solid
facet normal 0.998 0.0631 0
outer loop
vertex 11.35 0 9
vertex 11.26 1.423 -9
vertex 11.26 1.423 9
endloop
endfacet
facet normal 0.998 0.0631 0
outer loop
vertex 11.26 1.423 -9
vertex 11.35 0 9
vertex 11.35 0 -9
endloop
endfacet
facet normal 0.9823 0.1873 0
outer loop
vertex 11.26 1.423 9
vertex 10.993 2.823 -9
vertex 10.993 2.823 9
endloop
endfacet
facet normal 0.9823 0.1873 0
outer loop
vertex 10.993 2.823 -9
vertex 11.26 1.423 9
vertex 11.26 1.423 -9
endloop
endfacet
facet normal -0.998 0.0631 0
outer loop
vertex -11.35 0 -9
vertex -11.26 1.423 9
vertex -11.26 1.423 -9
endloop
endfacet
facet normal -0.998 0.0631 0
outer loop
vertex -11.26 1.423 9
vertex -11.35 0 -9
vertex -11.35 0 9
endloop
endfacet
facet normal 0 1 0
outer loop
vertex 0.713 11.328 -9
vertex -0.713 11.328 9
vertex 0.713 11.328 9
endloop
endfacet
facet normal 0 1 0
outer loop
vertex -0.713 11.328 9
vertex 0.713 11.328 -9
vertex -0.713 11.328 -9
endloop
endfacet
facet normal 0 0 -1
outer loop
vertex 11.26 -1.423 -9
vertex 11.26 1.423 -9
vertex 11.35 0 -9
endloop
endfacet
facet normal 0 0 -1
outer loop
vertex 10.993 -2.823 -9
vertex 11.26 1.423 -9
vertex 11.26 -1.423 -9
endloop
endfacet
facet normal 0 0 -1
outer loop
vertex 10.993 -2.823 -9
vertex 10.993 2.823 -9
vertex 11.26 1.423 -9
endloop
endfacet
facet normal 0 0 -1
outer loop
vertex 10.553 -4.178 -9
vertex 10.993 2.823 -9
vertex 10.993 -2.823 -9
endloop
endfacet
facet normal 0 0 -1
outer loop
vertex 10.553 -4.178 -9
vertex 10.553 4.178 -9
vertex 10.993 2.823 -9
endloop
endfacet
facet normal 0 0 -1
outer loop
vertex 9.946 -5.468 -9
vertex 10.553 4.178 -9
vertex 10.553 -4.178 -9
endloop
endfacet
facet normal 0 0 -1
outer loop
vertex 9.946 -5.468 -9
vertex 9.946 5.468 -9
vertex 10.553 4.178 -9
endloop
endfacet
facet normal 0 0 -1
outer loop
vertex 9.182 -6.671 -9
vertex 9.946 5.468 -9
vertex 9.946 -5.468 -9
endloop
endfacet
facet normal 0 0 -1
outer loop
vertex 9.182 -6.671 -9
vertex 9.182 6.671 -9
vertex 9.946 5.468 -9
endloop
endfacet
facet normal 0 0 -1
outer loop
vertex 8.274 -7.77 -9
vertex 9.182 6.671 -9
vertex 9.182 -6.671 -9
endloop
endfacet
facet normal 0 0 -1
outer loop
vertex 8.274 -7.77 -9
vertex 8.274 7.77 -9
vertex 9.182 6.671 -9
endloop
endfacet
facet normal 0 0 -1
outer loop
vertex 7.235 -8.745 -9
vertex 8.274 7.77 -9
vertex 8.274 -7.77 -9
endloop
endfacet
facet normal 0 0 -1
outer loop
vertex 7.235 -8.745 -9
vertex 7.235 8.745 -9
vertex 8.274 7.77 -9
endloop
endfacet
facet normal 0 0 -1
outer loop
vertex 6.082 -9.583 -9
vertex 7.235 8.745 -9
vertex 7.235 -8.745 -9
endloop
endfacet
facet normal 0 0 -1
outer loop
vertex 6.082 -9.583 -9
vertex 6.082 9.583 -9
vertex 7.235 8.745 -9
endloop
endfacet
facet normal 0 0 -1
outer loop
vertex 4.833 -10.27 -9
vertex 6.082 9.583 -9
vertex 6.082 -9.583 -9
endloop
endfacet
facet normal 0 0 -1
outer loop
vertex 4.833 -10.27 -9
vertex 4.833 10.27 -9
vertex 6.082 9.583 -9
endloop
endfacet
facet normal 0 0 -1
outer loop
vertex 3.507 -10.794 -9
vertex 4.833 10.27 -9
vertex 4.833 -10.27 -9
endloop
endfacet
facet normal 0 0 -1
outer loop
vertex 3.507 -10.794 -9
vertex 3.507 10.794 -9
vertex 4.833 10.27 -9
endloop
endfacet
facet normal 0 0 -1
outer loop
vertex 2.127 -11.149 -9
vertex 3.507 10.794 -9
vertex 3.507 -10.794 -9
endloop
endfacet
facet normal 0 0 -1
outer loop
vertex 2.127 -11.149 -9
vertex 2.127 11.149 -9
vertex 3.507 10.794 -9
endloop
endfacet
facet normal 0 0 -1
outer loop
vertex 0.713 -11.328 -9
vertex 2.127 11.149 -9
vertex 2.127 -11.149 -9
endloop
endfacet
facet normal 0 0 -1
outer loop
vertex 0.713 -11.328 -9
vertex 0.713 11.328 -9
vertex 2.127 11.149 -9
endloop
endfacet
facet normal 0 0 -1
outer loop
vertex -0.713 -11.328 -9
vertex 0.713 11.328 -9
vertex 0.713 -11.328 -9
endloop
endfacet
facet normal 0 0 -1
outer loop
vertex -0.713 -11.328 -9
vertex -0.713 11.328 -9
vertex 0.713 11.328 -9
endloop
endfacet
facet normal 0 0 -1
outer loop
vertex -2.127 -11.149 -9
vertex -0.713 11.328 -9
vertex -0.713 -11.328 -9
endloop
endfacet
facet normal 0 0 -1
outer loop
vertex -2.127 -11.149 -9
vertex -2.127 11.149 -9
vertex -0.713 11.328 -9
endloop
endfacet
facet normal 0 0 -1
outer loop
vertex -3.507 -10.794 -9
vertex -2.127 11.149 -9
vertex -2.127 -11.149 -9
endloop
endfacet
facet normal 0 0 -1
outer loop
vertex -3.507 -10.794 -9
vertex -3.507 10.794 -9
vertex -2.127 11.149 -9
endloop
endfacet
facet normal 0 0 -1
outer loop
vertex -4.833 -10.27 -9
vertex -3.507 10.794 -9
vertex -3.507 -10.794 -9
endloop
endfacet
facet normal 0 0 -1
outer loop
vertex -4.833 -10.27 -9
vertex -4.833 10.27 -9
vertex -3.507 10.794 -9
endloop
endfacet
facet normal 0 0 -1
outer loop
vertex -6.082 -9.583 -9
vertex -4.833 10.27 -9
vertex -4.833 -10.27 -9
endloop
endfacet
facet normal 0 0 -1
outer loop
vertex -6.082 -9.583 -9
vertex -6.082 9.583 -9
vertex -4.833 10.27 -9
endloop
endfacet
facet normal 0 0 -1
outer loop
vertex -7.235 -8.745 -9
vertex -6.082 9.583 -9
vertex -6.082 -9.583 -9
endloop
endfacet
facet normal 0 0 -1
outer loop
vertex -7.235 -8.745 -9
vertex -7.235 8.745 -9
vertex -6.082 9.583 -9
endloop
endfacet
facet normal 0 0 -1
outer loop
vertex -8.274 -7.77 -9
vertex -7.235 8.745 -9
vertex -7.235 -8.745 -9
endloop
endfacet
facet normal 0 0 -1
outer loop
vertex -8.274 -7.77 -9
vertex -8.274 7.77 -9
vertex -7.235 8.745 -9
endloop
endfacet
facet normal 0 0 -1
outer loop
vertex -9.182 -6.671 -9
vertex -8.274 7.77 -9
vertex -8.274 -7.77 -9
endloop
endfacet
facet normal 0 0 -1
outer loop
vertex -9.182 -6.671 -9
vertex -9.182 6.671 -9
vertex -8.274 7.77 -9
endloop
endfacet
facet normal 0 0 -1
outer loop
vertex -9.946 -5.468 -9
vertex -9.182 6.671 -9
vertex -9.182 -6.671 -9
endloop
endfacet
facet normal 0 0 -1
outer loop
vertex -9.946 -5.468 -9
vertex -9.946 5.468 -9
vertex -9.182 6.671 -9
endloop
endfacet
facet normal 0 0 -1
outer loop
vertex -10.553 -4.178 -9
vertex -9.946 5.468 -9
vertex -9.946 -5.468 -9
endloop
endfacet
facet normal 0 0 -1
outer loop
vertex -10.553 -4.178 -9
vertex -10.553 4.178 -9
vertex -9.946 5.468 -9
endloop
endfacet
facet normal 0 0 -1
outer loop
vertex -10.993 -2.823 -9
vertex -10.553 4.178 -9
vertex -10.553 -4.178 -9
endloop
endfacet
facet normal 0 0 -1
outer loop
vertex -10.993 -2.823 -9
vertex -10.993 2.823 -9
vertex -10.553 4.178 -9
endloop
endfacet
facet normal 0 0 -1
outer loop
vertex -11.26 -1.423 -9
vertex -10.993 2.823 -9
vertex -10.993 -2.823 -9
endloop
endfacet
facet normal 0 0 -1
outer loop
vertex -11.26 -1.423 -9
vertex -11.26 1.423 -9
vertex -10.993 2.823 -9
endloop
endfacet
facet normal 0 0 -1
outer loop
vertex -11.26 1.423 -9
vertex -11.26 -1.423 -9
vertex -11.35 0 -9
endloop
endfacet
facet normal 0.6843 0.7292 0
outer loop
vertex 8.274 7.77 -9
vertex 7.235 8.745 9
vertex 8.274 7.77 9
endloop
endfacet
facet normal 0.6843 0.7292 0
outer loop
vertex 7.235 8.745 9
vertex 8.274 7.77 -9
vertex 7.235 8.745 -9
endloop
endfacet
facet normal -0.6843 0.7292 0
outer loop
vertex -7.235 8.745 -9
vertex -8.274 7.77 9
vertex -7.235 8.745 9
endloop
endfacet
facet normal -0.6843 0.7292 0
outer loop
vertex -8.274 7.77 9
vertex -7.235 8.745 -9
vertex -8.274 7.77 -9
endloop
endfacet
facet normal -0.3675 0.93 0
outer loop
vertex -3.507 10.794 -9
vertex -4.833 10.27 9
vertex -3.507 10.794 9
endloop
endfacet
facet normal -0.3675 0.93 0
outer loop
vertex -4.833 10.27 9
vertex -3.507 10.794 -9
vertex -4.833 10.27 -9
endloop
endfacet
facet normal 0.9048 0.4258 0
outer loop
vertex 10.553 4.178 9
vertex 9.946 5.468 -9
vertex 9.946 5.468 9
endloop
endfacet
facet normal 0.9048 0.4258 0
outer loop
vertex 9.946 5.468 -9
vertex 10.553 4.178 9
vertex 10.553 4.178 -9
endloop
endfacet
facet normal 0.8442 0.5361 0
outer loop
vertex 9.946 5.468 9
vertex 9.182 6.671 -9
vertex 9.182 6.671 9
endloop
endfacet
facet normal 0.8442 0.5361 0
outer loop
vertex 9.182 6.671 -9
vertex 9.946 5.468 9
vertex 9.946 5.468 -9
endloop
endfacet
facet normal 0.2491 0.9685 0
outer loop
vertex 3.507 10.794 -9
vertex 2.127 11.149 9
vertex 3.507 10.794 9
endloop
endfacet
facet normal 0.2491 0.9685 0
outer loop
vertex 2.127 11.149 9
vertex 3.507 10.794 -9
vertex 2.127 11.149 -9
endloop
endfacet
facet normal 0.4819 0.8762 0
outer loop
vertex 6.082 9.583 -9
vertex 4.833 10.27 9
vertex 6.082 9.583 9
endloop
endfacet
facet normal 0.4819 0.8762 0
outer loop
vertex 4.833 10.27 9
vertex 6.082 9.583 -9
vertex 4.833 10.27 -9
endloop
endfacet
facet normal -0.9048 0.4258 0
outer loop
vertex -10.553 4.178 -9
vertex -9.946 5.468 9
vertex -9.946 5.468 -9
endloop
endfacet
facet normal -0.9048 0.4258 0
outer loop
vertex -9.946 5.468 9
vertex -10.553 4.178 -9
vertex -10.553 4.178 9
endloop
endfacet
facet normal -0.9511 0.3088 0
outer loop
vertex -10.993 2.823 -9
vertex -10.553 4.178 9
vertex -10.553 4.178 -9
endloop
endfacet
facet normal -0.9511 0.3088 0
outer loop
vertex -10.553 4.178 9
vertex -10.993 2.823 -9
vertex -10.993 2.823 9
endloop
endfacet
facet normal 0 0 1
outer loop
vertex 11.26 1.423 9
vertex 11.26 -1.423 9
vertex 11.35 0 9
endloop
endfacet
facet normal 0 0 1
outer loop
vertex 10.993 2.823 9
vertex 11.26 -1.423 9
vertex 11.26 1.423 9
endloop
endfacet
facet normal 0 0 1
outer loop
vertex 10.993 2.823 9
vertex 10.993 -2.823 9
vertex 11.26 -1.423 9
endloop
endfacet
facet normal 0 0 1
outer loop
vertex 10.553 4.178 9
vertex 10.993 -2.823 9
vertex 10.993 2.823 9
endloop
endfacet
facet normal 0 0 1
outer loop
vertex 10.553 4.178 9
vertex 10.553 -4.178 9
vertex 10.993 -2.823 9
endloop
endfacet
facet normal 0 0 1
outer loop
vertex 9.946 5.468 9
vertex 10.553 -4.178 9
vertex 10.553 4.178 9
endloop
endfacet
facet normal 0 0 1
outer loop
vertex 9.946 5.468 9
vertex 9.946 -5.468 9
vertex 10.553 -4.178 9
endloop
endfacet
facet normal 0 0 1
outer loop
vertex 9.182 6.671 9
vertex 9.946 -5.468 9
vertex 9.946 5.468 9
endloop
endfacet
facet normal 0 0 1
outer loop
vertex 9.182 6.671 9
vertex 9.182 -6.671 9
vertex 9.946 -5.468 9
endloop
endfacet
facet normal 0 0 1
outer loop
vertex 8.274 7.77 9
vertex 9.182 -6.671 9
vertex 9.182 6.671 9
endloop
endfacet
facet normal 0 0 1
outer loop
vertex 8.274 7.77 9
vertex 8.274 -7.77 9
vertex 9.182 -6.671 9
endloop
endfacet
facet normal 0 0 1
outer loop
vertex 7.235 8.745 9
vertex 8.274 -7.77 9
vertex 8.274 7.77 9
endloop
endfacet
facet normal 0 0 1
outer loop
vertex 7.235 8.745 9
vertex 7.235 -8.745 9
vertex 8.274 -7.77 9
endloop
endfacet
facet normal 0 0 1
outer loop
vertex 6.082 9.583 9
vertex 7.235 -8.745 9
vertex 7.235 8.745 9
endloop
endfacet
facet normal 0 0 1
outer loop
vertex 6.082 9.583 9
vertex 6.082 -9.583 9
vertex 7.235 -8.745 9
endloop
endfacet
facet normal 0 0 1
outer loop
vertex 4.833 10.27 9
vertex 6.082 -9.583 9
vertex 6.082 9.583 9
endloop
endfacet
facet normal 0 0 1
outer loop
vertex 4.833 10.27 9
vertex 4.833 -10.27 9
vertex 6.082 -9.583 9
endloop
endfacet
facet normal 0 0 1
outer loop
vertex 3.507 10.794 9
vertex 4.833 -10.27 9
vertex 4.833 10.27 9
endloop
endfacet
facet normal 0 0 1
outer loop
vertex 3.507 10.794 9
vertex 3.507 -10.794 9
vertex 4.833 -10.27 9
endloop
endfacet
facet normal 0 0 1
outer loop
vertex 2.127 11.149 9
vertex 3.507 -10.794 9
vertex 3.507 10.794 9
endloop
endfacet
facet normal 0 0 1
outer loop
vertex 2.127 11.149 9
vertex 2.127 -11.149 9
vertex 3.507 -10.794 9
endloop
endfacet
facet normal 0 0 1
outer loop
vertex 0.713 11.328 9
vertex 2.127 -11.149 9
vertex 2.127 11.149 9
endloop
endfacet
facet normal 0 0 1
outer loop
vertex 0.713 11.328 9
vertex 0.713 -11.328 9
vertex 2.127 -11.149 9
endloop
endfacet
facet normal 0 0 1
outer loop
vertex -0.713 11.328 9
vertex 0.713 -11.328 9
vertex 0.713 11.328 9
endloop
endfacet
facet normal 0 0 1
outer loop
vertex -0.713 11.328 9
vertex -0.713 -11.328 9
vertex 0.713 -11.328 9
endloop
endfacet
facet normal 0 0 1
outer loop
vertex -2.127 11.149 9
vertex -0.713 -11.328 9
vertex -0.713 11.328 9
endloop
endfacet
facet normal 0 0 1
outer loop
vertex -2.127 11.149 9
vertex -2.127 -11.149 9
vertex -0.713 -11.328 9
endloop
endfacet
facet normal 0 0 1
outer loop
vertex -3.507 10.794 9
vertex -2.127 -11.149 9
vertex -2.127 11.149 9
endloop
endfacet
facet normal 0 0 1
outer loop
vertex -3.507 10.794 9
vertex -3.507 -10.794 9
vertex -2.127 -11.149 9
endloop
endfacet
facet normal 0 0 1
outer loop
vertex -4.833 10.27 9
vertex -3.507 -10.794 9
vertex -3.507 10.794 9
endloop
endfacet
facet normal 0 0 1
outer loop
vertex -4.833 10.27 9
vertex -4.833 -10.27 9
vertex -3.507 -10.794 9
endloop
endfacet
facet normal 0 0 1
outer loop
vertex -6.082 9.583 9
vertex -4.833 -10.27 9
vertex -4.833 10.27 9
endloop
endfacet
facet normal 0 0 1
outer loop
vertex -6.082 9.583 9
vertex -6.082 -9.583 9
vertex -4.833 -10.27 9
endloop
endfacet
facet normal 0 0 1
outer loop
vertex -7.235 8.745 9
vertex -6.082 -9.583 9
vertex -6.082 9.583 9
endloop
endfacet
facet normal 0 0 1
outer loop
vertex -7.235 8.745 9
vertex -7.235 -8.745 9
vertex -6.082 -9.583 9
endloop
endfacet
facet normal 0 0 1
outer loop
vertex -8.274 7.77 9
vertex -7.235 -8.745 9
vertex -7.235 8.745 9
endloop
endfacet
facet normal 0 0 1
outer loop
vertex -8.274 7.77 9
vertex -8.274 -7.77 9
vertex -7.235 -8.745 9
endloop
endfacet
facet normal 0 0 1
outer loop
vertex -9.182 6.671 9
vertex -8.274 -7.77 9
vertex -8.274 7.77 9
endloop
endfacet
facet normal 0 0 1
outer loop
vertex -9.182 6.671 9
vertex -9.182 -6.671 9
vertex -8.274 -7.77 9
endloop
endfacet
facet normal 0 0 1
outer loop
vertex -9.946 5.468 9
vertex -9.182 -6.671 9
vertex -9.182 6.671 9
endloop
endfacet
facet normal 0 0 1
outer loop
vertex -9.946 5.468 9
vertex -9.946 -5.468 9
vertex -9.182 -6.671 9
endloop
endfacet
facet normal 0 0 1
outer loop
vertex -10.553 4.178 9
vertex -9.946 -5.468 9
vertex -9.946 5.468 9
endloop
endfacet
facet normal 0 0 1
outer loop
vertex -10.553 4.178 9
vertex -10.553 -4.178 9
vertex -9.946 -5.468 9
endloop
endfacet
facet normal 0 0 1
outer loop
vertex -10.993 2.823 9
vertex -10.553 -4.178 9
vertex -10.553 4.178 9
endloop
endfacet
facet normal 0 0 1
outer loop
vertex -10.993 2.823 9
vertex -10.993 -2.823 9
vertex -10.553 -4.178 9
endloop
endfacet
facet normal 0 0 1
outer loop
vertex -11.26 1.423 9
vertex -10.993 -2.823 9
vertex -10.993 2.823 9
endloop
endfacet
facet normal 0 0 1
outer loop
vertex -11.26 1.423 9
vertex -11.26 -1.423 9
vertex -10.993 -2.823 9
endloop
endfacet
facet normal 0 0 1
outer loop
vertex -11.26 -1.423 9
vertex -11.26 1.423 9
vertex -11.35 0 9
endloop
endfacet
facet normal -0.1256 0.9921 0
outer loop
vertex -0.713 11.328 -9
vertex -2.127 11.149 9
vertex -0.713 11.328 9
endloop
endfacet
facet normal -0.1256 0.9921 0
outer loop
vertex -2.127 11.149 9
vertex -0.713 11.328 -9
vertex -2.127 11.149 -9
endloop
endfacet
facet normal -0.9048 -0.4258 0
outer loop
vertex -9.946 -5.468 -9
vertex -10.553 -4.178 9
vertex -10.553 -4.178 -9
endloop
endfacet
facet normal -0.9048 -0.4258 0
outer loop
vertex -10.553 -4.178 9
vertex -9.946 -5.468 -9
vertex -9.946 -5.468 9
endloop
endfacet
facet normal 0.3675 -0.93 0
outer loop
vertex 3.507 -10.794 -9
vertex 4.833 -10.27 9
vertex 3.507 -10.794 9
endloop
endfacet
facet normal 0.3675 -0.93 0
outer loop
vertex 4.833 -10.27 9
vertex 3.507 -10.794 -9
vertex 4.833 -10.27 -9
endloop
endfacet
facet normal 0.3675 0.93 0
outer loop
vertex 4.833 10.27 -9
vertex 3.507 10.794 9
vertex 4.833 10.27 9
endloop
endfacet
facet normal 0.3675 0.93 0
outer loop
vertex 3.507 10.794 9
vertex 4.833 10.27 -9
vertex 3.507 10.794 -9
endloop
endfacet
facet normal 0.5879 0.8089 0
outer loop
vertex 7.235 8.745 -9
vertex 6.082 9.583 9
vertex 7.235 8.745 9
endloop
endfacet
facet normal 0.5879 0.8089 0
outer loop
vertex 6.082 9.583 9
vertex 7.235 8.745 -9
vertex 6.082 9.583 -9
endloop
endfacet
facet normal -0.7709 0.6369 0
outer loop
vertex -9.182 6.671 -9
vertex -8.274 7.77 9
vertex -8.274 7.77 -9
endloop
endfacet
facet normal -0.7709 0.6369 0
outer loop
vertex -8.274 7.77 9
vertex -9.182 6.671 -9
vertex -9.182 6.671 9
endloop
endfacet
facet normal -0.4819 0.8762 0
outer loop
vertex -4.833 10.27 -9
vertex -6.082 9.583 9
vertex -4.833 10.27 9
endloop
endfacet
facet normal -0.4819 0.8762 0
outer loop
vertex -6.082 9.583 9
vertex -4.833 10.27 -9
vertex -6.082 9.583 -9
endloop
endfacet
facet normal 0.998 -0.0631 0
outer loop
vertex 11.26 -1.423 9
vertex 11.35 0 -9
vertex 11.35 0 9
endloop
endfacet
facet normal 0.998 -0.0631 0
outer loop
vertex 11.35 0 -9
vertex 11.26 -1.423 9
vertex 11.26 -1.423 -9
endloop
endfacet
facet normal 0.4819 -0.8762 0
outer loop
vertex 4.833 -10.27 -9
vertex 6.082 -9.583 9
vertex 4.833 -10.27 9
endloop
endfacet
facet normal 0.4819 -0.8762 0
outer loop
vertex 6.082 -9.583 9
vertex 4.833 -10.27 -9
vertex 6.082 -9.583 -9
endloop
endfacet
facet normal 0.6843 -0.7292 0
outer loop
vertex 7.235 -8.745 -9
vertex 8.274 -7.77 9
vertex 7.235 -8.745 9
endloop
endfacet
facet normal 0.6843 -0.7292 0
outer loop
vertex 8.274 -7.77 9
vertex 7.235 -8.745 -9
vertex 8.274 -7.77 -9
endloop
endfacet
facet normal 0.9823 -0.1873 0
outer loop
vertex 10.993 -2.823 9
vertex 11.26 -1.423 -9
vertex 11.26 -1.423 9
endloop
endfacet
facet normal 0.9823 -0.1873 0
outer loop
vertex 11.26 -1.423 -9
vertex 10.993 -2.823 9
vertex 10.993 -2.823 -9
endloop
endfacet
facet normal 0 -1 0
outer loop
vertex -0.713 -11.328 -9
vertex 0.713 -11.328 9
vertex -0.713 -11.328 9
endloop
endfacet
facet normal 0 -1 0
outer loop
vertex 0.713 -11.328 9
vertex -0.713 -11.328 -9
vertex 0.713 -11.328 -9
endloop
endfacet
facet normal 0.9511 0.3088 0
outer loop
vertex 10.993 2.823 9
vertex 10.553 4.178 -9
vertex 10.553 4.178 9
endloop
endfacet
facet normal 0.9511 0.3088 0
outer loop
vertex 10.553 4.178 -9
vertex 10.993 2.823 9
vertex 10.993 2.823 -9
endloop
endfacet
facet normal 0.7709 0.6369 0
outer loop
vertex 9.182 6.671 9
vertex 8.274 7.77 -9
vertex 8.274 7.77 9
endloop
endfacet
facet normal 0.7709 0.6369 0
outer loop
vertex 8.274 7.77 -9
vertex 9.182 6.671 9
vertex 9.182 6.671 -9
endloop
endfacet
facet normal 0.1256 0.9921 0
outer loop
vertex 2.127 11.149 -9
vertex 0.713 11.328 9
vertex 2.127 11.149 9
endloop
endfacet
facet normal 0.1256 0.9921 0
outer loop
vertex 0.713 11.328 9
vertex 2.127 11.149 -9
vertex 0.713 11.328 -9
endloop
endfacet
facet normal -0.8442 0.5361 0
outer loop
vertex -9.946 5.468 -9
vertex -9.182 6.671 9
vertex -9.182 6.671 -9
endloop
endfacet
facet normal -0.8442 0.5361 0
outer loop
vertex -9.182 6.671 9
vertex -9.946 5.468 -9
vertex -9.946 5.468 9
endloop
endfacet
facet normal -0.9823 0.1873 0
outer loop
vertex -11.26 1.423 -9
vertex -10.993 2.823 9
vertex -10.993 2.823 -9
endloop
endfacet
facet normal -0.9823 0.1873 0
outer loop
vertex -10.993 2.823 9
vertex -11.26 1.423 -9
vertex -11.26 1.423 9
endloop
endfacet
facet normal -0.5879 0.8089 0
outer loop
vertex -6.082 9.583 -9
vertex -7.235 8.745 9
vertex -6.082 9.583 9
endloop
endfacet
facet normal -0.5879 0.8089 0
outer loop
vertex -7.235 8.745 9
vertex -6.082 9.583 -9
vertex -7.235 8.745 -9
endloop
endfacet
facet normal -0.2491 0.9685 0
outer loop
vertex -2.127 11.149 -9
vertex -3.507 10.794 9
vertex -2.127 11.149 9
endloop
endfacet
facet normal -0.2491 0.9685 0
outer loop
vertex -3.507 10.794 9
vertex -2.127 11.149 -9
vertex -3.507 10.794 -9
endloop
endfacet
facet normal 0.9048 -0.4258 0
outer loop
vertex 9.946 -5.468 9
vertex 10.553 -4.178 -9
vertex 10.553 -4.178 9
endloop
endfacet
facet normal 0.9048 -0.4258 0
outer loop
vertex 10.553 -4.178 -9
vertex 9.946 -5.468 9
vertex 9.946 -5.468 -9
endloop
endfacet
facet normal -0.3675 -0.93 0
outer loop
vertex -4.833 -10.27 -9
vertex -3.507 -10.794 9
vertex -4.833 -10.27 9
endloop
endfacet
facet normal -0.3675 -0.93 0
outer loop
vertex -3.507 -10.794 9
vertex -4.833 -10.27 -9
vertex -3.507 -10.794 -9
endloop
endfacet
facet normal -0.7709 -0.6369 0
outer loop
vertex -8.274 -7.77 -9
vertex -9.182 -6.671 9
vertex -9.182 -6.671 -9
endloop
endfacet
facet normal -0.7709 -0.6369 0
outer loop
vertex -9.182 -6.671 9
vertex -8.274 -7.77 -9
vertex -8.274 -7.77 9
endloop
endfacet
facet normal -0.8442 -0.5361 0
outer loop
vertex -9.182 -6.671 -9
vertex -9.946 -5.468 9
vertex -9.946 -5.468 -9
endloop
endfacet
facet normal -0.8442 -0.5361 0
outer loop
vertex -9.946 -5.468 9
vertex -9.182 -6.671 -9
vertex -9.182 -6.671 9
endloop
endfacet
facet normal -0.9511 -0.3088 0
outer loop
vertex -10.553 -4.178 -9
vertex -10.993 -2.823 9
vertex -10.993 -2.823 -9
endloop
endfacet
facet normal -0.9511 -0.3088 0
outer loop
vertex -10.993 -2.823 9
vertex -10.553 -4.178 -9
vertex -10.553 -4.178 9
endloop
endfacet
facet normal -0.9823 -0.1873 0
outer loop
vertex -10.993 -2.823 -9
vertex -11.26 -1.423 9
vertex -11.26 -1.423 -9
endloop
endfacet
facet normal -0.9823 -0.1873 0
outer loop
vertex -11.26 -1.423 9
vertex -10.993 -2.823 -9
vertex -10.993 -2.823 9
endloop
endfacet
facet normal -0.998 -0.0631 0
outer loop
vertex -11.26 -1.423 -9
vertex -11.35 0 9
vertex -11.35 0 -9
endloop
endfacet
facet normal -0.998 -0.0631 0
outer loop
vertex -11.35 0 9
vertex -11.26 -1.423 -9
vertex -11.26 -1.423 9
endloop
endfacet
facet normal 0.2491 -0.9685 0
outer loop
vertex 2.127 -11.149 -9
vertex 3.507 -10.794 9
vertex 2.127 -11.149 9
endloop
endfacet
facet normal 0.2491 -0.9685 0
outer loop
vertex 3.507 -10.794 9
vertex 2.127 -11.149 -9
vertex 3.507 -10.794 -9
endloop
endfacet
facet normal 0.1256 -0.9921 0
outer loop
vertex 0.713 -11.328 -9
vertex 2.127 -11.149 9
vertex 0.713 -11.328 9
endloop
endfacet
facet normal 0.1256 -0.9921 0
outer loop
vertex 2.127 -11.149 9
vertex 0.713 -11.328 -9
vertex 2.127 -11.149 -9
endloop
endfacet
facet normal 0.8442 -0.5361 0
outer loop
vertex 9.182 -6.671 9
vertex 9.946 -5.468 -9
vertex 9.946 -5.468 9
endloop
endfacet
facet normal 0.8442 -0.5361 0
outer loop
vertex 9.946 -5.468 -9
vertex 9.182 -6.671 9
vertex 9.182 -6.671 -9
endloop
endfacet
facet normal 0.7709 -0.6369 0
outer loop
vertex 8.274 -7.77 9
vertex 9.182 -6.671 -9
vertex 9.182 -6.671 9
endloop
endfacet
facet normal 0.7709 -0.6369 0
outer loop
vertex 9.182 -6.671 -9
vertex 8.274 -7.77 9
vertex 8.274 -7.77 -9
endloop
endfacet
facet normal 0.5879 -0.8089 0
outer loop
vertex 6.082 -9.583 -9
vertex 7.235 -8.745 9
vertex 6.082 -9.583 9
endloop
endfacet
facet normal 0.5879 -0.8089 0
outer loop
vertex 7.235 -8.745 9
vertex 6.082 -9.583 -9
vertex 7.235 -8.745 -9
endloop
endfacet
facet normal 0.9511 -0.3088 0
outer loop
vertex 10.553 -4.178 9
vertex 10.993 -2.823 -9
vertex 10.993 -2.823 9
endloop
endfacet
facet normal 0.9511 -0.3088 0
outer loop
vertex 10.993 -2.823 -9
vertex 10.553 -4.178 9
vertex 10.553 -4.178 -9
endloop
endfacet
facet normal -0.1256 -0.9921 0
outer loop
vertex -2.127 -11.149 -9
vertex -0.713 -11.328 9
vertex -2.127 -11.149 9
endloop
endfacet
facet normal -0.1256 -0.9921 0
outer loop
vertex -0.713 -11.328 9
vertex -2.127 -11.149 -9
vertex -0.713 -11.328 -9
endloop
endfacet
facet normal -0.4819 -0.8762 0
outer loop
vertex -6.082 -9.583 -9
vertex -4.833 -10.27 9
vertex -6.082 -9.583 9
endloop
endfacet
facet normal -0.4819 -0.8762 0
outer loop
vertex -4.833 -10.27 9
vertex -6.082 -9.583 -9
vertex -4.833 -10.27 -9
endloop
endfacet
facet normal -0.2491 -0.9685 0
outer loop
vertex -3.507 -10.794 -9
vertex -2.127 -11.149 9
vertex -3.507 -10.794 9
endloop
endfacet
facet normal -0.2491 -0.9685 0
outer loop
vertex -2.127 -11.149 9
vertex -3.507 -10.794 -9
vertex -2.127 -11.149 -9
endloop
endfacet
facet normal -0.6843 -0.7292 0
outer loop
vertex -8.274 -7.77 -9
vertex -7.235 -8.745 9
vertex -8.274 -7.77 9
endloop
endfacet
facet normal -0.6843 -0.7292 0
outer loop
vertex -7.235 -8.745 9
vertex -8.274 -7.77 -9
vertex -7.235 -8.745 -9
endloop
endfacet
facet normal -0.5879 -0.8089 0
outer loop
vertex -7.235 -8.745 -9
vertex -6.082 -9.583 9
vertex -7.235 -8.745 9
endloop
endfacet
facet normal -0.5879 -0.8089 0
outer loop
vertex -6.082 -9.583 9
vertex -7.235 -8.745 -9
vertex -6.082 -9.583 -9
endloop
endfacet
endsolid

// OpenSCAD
$fn = 50;


difference() {
	union() {
		translate(v = [0, 0, -9.0000000000]) {
			cylinder(h = 18, r = 11.3500000000);
		}
	}
	union() {
		translate(v = [0, 0, -100.0000000000]) {
			cylinder(h = 200, r = 0);
		}
	}
}
